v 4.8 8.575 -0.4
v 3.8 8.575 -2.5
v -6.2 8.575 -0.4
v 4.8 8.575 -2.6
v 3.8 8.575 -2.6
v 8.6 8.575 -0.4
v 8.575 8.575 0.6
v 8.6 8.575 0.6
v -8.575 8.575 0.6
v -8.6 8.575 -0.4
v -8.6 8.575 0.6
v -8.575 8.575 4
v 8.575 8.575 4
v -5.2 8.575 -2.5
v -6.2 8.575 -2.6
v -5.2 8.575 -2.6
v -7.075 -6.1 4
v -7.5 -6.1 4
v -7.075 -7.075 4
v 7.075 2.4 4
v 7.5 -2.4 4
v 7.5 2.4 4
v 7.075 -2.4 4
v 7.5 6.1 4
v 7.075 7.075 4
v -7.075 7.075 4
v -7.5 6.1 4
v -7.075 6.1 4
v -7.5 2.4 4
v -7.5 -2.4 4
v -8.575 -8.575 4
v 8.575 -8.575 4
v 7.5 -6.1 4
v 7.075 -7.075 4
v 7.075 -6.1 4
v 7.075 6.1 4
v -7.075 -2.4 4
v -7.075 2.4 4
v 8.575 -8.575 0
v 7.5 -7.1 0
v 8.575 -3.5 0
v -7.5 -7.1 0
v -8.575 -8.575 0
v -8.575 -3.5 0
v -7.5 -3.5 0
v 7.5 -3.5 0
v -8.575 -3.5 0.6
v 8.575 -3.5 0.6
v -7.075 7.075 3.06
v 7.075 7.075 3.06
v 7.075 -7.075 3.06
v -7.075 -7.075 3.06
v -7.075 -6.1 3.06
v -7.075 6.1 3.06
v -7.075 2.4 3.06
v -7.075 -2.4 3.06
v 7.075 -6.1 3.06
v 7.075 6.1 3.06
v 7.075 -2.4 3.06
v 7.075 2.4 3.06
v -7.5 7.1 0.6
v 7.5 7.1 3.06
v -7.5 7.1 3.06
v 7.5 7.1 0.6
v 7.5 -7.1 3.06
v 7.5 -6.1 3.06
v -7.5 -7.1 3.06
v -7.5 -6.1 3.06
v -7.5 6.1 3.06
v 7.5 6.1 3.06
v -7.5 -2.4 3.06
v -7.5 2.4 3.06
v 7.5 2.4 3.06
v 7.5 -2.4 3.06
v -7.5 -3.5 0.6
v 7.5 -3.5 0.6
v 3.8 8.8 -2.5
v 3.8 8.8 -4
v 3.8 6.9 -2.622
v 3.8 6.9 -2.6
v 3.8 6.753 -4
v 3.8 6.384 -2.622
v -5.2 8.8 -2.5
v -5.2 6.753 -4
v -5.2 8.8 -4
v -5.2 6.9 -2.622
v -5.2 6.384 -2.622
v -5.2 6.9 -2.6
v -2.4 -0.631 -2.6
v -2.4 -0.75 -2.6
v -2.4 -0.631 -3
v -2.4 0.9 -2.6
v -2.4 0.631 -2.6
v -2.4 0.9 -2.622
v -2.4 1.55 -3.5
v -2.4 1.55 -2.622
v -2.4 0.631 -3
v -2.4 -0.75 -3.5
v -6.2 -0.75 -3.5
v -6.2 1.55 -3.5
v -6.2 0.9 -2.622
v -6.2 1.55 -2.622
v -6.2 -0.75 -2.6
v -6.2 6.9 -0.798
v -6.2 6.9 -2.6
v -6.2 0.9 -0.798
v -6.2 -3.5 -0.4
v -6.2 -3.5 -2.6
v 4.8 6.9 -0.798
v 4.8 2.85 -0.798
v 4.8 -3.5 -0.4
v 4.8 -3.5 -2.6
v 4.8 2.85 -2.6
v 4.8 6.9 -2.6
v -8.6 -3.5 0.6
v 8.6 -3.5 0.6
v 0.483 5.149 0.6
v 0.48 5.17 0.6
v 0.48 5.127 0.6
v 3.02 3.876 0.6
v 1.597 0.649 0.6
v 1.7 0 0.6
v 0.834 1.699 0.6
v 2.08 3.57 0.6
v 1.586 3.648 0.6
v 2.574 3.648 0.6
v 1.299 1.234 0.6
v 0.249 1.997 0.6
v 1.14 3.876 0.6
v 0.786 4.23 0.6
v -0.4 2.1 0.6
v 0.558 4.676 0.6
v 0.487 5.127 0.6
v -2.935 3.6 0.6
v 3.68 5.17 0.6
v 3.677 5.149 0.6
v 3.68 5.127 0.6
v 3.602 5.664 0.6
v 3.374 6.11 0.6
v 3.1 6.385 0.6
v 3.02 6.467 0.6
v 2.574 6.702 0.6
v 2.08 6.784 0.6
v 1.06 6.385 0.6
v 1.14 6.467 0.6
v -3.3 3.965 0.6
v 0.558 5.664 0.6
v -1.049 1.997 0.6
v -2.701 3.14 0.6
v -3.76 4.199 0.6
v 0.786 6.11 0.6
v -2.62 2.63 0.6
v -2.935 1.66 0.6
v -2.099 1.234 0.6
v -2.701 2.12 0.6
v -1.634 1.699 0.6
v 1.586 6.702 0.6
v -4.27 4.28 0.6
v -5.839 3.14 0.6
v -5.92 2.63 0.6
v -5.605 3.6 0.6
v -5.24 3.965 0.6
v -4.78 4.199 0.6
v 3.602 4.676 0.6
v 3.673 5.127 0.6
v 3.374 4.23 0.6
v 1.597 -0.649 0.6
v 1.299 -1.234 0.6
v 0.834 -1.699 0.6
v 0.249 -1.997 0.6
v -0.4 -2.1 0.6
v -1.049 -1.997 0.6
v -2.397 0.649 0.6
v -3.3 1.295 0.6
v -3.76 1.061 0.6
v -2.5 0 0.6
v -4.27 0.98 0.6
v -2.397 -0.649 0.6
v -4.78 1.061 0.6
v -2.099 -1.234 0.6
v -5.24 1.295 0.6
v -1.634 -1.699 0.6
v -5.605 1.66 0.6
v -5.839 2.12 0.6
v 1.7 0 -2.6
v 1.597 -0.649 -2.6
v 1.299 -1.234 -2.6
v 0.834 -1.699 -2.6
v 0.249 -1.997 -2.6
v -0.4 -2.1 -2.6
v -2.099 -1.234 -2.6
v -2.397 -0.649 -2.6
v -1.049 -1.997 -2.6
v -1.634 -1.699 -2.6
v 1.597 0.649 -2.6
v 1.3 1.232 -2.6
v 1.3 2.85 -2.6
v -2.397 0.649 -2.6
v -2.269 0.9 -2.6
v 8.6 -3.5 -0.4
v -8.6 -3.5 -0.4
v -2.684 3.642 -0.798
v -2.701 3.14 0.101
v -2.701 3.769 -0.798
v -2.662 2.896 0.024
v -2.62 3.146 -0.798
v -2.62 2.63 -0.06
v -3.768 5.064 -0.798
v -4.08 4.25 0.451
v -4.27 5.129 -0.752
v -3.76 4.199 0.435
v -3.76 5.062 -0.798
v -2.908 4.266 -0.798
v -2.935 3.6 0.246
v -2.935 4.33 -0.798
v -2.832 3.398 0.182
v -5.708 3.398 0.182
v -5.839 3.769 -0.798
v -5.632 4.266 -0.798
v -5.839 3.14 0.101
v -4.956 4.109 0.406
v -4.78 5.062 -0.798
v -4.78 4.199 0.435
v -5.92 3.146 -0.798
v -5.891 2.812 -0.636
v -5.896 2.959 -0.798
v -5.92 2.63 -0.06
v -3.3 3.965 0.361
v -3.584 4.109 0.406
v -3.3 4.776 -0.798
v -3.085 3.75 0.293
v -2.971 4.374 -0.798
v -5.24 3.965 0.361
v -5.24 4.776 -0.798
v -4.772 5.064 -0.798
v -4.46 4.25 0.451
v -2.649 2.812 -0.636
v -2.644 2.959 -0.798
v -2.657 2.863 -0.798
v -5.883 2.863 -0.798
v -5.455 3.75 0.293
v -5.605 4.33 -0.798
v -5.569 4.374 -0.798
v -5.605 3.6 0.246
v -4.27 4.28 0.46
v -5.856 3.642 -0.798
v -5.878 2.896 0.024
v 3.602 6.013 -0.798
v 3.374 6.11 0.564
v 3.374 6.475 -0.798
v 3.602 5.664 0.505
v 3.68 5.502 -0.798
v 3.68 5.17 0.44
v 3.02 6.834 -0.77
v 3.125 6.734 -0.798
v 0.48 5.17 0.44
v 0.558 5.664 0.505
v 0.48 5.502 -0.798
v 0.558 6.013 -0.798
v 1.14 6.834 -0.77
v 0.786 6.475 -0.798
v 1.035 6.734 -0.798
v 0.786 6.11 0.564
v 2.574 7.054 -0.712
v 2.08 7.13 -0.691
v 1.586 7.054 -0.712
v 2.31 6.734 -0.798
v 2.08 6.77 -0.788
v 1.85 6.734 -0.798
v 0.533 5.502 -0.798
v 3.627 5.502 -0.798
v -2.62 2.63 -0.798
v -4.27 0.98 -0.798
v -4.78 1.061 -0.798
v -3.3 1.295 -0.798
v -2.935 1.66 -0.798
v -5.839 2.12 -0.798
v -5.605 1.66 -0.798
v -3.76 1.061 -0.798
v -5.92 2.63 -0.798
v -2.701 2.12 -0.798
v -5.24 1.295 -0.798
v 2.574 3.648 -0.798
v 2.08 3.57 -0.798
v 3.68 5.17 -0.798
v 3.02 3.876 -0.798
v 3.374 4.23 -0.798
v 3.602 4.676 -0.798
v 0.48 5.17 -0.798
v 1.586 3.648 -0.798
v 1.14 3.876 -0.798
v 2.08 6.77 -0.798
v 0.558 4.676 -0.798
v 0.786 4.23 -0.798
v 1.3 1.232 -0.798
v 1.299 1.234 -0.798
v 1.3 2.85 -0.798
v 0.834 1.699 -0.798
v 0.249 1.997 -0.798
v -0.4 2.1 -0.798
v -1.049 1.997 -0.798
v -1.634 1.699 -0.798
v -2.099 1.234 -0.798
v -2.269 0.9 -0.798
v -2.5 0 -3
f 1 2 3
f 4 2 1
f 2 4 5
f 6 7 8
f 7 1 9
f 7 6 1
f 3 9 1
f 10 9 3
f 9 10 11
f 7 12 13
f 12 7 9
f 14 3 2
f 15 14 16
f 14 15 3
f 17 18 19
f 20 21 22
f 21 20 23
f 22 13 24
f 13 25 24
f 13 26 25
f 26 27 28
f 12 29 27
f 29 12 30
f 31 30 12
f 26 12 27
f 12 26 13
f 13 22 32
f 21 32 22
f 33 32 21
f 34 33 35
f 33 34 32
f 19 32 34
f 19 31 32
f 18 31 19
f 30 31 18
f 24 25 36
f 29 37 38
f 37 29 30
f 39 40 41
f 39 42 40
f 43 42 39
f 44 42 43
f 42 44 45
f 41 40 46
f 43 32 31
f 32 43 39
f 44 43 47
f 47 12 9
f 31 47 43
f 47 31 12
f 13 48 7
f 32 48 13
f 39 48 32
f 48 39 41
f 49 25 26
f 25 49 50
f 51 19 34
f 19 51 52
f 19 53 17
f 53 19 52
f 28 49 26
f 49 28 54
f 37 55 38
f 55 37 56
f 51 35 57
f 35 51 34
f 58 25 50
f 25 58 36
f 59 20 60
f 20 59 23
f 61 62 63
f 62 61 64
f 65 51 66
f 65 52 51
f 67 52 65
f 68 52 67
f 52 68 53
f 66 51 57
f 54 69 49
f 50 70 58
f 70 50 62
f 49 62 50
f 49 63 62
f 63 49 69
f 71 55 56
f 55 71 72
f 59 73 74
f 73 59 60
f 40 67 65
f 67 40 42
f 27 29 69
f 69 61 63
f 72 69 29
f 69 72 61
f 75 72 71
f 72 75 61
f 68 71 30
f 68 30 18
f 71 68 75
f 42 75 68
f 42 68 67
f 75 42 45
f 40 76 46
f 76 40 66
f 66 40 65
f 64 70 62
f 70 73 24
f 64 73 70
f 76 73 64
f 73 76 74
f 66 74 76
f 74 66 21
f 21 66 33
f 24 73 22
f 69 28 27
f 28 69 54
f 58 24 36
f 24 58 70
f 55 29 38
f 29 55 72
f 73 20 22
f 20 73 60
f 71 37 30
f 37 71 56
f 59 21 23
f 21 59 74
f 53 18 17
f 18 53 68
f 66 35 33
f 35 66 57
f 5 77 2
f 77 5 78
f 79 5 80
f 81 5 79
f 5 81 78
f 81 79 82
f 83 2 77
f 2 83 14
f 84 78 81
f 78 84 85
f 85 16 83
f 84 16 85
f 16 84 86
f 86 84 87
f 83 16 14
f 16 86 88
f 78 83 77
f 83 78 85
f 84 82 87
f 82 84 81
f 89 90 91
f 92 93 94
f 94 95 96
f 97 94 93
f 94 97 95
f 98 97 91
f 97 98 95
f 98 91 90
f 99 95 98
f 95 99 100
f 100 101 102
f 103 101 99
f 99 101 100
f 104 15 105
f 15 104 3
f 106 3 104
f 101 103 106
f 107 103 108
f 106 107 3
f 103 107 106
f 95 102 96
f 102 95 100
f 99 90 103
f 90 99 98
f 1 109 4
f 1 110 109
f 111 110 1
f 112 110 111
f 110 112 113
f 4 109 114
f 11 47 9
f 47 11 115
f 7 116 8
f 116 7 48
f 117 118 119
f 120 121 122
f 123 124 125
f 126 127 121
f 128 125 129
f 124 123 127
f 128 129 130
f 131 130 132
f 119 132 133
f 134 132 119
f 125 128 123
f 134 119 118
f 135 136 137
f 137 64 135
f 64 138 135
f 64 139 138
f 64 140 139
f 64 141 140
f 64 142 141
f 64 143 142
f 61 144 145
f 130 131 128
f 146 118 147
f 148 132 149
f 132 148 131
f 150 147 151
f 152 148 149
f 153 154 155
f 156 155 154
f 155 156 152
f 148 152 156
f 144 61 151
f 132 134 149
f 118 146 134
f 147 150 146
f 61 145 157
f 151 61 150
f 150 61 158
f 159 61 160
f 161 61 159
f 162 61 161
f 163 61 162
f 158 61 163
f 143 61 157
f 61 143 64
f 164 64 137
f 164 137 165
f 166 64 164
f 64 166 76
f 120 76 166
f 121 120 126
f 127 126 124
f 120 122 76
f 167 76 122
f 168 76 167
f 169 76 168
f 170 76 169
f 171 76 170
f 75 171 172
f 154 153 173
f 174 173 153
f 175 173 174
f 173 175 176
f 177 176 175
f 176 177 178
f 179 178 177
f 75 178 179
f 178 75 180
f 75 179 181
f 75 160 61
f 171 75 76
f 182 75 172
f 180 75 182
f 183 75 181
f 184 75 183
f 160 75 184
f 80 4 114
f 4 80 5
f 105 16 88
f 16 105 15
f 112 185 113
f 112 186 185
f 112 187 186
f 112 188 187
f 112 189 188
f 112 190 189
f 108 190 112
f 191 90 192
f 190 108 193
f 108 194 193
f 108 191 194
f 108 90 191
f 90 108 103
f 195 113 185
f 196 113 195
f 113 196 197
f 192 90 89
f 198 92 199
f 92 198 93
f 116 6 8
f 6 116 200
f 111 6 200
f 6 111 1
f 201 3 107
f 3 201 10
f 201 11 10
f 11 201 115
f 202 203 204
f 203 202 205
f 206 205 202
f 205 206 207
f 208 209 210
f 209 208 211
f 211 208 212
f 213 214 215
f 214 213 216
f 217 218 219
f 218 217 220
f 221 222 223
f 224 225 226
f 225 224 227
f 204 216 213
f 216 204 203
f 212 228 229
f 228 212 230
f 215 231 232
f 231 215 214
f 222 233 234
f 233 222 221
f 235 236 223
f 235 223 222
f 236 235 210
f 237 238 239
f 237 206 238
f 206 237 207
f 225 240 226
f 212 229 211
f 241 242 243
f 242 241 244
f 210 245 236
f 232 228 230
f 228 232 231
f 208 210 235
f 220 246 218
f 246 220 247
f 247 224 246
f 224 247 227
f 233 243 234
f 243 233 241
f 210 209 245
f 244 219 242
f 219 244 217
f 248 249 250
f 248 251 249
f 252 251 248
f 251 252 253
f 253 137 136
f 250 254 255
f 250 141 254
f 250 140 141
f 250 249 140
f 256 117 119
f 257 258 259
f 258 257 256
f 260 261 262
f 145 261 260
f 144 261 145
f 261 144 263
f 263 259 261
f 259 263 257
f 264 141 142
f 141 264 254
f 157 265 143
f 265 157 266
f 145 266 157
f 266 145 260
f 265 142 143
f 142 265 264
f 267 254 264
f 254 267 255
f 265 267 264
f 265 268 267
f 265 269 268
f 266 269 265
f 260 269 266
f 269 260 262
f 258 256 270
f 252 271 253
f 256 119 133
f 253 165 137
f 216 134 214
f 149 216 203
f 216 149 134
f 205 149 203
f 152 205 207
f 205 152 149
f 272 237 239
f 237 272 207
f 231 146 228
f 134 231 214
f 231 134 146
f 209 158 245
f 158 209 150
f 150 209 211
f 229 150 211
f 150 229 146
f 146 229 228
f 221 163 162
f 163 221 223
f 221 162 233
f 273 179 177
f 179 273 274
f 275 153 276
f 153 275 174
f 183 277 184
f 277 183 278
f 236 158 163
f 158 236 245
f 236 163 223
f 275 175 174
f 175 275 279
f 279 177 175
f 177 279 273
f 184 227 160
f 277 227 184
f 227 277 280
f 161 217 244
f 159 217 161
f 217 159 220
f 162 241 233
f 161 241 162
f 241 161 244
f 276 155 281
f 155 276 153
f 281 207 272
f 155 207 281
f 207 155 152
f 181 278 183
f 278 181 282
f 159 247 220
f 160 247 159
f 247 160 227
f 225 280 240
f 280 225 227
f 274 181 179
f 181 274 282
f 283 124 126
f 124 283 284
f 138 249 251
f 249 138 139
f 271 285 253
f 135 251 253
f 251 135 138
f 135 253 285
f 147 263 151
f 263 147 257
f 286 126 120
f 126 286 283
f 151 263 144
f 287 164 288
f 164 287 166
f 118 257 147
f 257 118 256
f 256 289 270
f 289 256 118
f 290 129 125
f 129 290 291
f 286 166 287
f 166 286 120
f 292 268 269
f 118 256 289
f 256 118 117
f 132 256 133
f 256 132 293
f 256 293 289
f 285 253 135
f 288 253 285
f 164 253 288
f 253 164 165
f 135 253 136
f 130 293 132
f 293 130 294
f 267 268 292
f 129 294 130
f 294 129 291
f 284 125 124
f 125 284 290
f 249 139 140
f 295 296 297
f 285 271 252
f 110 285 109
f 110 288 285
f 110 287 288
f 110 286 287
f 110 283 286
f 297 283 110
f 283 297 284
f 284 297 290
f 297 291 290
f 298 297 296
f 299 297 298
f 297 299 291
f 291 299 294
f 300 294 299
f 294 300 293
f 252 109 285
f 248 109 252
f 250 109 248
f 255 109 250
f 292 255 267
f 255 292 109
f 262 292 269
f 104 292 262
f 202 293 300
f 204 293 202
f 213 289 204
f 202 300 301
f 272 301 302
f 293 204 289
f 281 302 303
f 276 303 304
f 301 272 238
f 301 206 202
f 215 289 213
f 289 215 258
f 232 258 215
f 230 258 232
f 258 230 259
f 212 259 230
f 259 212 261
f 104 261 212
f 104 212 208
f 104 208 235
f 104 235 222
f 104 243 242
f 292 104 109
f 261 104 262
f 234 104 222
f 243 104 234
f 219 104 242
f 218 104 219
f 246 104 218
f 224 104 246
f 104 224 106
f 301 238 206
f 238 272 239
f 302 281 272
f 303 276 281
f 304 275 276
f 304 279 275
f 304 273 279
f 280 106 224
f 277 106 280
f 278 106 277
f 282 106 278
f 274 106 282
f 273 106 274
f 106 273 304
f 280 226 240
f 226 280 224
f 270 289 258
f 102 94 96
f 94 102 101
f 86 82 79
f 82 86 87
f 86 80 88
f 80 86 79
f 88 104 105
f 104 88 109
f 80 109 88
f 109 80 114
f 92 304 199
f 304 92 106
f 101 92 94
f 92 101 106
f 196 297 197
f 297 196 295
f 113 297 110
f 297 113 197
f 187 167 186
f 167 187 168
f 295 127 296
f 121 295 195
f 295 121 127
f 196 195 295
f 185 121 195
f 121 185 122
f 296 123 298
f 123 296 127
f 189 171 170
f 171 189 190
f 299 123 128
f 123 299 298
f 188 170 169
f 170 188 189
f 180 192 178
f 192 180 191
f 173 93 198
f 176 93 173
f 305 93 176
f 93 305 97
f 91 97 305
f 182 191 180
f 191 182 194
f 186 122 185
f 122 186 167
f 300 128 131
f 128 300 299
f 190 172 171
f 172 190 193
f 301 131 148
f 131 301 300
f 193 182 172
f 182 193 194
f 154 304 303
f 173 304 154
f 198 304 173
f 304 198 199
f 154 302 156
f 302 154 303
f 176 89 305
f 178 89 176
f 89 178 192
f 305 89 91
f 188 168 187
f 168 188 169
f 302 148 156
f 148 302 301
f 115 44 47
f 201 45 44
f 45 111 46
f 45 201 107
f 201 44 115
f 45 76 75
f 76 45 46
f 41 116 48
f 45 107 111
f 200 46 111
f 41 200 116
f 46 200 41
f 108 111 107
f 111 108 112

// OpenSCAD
union () {
  union () {
    rotate (a=90.0, v=[0, 0, 1]) {
      translate ([0, 0, 2]) {
        difference () {
          union () {
            color ([4/51, 4/51, 44/51, 1]) {
              cube ([17.15, 17.15, 4], center=true);
            }
          }
          color ([4/51, 44/51, 4/51, 1]) {
            cube ([14.15, 14.15, 6], center=true);
          }
          translate ([0, 0, -1.1]) {
            cube ([14.2, 15.0, 4.32], center=true);
          }
          translate ([4.25, 0, -0.1]) {
            cube ([3.7, 15.0, 6], center=true);
          }
          translate ([-4.25, 0, -0.1]) {
            cube ([3.7, 15.0, 6], center=true);
          }
        }
      }
    }
    translate ([-0.7, 4.5, -1]) {
      union () {
        difference () {
          union () {
            color ([4/51, 44/51, 4/51, 1]) {
              translate ([0, -4.5, 0]) {
                cube ([11, 17.15, 3.2], center=true);
              }
            }
            color ([44/51, 4/51, 4/51, 1]) {
              translate ([0.7, -4.5, 1.1]) {
                cube ([17.2, 17.15, 1], center=true);
              }
            }
            union () {
              difference () {
                translate ([0, 2.95, -2.25]) {
                  cube ([9, 2.7, 1.5], center=true);
                }
                rotate (a=14.999999999999998, v=[1, 0, 0]) {
                  translate ([0, 0.9, -2.45]) {
                    cube ([9.1, 1, 2.5], center=true);
                  }
                }
              }
              difference () {
                translate ([-3.6, -4.1, -2.0]) {
                  cube ([3.8, 2.3, 1.0], center=true);
                }
              }
            }
          }
          translate ([-0.4, -0.6, -0.71]) {
            color ([44/51, 163/255, 163/255, 1]) {
              difference () {
                union () {
                  cube ([12, 6, 1.825], center=true);
                  union () {
                    translate ([-3.17, -1.27, 1.65]) {
                      union () {
                        translate ([0, 0, 0]) {
                          cylinder ($fn=20, h=1.5, r=1.65, center=true);
                        }
                        difference () {
                          rotate (a=34.99999999999999, v=[1, 0, 0]) {
                            cylinder ($fn=20, h=4, r=1.65, center=true);
                          }
                          translate ([0, -2, 0]) {
                            cube ([4, 4, 4], center=true);
                          }
                        }
                        translate ([6.35, 2.54, 0]) {
                          cylinder ($fn=20, h=1.5, r=1.6, center=true);
                        }
                        translate ([6.35, 2.54, 0.5]) {
                          rotate (a=14.999999999999998, v=[1, 0, 0]) {
                            difference () {
                              cylinder ($fn=20, h=3.2, r=1.6, center=true);
                              translate ([0, -2, 0]) {
                                cube ([4, 4, 4], center=true);
                              }
                            }
                          }
                        }
                      }
                    }
                    translate ([6.8, 1.5, 0]) {
                      cube ([2.7, 1.9, 1.8], center=true);
                    }
                    translate ([-6.8, -1.5, 0]) {
                      cube ([2.7, 1.9, 1.8], center=true);
                    }
                  }
                }
                translate ([4.4, -3.05, 0]) {
                  cube ([4, 4, 3], center=true);
                }
              }
            }
          }
          translate ([0.3, -4.5, 0]) {
            cylinder ($fn=20, h=4, r=2.1, center=true);
          }
          translate ([0, -13, 0]) {
            cube ([20, 10, 5], center=true);
          }
        }
      }
    }
    rotate (a=90.0, v=[0, 0, 1]) {
    }
  }
}
